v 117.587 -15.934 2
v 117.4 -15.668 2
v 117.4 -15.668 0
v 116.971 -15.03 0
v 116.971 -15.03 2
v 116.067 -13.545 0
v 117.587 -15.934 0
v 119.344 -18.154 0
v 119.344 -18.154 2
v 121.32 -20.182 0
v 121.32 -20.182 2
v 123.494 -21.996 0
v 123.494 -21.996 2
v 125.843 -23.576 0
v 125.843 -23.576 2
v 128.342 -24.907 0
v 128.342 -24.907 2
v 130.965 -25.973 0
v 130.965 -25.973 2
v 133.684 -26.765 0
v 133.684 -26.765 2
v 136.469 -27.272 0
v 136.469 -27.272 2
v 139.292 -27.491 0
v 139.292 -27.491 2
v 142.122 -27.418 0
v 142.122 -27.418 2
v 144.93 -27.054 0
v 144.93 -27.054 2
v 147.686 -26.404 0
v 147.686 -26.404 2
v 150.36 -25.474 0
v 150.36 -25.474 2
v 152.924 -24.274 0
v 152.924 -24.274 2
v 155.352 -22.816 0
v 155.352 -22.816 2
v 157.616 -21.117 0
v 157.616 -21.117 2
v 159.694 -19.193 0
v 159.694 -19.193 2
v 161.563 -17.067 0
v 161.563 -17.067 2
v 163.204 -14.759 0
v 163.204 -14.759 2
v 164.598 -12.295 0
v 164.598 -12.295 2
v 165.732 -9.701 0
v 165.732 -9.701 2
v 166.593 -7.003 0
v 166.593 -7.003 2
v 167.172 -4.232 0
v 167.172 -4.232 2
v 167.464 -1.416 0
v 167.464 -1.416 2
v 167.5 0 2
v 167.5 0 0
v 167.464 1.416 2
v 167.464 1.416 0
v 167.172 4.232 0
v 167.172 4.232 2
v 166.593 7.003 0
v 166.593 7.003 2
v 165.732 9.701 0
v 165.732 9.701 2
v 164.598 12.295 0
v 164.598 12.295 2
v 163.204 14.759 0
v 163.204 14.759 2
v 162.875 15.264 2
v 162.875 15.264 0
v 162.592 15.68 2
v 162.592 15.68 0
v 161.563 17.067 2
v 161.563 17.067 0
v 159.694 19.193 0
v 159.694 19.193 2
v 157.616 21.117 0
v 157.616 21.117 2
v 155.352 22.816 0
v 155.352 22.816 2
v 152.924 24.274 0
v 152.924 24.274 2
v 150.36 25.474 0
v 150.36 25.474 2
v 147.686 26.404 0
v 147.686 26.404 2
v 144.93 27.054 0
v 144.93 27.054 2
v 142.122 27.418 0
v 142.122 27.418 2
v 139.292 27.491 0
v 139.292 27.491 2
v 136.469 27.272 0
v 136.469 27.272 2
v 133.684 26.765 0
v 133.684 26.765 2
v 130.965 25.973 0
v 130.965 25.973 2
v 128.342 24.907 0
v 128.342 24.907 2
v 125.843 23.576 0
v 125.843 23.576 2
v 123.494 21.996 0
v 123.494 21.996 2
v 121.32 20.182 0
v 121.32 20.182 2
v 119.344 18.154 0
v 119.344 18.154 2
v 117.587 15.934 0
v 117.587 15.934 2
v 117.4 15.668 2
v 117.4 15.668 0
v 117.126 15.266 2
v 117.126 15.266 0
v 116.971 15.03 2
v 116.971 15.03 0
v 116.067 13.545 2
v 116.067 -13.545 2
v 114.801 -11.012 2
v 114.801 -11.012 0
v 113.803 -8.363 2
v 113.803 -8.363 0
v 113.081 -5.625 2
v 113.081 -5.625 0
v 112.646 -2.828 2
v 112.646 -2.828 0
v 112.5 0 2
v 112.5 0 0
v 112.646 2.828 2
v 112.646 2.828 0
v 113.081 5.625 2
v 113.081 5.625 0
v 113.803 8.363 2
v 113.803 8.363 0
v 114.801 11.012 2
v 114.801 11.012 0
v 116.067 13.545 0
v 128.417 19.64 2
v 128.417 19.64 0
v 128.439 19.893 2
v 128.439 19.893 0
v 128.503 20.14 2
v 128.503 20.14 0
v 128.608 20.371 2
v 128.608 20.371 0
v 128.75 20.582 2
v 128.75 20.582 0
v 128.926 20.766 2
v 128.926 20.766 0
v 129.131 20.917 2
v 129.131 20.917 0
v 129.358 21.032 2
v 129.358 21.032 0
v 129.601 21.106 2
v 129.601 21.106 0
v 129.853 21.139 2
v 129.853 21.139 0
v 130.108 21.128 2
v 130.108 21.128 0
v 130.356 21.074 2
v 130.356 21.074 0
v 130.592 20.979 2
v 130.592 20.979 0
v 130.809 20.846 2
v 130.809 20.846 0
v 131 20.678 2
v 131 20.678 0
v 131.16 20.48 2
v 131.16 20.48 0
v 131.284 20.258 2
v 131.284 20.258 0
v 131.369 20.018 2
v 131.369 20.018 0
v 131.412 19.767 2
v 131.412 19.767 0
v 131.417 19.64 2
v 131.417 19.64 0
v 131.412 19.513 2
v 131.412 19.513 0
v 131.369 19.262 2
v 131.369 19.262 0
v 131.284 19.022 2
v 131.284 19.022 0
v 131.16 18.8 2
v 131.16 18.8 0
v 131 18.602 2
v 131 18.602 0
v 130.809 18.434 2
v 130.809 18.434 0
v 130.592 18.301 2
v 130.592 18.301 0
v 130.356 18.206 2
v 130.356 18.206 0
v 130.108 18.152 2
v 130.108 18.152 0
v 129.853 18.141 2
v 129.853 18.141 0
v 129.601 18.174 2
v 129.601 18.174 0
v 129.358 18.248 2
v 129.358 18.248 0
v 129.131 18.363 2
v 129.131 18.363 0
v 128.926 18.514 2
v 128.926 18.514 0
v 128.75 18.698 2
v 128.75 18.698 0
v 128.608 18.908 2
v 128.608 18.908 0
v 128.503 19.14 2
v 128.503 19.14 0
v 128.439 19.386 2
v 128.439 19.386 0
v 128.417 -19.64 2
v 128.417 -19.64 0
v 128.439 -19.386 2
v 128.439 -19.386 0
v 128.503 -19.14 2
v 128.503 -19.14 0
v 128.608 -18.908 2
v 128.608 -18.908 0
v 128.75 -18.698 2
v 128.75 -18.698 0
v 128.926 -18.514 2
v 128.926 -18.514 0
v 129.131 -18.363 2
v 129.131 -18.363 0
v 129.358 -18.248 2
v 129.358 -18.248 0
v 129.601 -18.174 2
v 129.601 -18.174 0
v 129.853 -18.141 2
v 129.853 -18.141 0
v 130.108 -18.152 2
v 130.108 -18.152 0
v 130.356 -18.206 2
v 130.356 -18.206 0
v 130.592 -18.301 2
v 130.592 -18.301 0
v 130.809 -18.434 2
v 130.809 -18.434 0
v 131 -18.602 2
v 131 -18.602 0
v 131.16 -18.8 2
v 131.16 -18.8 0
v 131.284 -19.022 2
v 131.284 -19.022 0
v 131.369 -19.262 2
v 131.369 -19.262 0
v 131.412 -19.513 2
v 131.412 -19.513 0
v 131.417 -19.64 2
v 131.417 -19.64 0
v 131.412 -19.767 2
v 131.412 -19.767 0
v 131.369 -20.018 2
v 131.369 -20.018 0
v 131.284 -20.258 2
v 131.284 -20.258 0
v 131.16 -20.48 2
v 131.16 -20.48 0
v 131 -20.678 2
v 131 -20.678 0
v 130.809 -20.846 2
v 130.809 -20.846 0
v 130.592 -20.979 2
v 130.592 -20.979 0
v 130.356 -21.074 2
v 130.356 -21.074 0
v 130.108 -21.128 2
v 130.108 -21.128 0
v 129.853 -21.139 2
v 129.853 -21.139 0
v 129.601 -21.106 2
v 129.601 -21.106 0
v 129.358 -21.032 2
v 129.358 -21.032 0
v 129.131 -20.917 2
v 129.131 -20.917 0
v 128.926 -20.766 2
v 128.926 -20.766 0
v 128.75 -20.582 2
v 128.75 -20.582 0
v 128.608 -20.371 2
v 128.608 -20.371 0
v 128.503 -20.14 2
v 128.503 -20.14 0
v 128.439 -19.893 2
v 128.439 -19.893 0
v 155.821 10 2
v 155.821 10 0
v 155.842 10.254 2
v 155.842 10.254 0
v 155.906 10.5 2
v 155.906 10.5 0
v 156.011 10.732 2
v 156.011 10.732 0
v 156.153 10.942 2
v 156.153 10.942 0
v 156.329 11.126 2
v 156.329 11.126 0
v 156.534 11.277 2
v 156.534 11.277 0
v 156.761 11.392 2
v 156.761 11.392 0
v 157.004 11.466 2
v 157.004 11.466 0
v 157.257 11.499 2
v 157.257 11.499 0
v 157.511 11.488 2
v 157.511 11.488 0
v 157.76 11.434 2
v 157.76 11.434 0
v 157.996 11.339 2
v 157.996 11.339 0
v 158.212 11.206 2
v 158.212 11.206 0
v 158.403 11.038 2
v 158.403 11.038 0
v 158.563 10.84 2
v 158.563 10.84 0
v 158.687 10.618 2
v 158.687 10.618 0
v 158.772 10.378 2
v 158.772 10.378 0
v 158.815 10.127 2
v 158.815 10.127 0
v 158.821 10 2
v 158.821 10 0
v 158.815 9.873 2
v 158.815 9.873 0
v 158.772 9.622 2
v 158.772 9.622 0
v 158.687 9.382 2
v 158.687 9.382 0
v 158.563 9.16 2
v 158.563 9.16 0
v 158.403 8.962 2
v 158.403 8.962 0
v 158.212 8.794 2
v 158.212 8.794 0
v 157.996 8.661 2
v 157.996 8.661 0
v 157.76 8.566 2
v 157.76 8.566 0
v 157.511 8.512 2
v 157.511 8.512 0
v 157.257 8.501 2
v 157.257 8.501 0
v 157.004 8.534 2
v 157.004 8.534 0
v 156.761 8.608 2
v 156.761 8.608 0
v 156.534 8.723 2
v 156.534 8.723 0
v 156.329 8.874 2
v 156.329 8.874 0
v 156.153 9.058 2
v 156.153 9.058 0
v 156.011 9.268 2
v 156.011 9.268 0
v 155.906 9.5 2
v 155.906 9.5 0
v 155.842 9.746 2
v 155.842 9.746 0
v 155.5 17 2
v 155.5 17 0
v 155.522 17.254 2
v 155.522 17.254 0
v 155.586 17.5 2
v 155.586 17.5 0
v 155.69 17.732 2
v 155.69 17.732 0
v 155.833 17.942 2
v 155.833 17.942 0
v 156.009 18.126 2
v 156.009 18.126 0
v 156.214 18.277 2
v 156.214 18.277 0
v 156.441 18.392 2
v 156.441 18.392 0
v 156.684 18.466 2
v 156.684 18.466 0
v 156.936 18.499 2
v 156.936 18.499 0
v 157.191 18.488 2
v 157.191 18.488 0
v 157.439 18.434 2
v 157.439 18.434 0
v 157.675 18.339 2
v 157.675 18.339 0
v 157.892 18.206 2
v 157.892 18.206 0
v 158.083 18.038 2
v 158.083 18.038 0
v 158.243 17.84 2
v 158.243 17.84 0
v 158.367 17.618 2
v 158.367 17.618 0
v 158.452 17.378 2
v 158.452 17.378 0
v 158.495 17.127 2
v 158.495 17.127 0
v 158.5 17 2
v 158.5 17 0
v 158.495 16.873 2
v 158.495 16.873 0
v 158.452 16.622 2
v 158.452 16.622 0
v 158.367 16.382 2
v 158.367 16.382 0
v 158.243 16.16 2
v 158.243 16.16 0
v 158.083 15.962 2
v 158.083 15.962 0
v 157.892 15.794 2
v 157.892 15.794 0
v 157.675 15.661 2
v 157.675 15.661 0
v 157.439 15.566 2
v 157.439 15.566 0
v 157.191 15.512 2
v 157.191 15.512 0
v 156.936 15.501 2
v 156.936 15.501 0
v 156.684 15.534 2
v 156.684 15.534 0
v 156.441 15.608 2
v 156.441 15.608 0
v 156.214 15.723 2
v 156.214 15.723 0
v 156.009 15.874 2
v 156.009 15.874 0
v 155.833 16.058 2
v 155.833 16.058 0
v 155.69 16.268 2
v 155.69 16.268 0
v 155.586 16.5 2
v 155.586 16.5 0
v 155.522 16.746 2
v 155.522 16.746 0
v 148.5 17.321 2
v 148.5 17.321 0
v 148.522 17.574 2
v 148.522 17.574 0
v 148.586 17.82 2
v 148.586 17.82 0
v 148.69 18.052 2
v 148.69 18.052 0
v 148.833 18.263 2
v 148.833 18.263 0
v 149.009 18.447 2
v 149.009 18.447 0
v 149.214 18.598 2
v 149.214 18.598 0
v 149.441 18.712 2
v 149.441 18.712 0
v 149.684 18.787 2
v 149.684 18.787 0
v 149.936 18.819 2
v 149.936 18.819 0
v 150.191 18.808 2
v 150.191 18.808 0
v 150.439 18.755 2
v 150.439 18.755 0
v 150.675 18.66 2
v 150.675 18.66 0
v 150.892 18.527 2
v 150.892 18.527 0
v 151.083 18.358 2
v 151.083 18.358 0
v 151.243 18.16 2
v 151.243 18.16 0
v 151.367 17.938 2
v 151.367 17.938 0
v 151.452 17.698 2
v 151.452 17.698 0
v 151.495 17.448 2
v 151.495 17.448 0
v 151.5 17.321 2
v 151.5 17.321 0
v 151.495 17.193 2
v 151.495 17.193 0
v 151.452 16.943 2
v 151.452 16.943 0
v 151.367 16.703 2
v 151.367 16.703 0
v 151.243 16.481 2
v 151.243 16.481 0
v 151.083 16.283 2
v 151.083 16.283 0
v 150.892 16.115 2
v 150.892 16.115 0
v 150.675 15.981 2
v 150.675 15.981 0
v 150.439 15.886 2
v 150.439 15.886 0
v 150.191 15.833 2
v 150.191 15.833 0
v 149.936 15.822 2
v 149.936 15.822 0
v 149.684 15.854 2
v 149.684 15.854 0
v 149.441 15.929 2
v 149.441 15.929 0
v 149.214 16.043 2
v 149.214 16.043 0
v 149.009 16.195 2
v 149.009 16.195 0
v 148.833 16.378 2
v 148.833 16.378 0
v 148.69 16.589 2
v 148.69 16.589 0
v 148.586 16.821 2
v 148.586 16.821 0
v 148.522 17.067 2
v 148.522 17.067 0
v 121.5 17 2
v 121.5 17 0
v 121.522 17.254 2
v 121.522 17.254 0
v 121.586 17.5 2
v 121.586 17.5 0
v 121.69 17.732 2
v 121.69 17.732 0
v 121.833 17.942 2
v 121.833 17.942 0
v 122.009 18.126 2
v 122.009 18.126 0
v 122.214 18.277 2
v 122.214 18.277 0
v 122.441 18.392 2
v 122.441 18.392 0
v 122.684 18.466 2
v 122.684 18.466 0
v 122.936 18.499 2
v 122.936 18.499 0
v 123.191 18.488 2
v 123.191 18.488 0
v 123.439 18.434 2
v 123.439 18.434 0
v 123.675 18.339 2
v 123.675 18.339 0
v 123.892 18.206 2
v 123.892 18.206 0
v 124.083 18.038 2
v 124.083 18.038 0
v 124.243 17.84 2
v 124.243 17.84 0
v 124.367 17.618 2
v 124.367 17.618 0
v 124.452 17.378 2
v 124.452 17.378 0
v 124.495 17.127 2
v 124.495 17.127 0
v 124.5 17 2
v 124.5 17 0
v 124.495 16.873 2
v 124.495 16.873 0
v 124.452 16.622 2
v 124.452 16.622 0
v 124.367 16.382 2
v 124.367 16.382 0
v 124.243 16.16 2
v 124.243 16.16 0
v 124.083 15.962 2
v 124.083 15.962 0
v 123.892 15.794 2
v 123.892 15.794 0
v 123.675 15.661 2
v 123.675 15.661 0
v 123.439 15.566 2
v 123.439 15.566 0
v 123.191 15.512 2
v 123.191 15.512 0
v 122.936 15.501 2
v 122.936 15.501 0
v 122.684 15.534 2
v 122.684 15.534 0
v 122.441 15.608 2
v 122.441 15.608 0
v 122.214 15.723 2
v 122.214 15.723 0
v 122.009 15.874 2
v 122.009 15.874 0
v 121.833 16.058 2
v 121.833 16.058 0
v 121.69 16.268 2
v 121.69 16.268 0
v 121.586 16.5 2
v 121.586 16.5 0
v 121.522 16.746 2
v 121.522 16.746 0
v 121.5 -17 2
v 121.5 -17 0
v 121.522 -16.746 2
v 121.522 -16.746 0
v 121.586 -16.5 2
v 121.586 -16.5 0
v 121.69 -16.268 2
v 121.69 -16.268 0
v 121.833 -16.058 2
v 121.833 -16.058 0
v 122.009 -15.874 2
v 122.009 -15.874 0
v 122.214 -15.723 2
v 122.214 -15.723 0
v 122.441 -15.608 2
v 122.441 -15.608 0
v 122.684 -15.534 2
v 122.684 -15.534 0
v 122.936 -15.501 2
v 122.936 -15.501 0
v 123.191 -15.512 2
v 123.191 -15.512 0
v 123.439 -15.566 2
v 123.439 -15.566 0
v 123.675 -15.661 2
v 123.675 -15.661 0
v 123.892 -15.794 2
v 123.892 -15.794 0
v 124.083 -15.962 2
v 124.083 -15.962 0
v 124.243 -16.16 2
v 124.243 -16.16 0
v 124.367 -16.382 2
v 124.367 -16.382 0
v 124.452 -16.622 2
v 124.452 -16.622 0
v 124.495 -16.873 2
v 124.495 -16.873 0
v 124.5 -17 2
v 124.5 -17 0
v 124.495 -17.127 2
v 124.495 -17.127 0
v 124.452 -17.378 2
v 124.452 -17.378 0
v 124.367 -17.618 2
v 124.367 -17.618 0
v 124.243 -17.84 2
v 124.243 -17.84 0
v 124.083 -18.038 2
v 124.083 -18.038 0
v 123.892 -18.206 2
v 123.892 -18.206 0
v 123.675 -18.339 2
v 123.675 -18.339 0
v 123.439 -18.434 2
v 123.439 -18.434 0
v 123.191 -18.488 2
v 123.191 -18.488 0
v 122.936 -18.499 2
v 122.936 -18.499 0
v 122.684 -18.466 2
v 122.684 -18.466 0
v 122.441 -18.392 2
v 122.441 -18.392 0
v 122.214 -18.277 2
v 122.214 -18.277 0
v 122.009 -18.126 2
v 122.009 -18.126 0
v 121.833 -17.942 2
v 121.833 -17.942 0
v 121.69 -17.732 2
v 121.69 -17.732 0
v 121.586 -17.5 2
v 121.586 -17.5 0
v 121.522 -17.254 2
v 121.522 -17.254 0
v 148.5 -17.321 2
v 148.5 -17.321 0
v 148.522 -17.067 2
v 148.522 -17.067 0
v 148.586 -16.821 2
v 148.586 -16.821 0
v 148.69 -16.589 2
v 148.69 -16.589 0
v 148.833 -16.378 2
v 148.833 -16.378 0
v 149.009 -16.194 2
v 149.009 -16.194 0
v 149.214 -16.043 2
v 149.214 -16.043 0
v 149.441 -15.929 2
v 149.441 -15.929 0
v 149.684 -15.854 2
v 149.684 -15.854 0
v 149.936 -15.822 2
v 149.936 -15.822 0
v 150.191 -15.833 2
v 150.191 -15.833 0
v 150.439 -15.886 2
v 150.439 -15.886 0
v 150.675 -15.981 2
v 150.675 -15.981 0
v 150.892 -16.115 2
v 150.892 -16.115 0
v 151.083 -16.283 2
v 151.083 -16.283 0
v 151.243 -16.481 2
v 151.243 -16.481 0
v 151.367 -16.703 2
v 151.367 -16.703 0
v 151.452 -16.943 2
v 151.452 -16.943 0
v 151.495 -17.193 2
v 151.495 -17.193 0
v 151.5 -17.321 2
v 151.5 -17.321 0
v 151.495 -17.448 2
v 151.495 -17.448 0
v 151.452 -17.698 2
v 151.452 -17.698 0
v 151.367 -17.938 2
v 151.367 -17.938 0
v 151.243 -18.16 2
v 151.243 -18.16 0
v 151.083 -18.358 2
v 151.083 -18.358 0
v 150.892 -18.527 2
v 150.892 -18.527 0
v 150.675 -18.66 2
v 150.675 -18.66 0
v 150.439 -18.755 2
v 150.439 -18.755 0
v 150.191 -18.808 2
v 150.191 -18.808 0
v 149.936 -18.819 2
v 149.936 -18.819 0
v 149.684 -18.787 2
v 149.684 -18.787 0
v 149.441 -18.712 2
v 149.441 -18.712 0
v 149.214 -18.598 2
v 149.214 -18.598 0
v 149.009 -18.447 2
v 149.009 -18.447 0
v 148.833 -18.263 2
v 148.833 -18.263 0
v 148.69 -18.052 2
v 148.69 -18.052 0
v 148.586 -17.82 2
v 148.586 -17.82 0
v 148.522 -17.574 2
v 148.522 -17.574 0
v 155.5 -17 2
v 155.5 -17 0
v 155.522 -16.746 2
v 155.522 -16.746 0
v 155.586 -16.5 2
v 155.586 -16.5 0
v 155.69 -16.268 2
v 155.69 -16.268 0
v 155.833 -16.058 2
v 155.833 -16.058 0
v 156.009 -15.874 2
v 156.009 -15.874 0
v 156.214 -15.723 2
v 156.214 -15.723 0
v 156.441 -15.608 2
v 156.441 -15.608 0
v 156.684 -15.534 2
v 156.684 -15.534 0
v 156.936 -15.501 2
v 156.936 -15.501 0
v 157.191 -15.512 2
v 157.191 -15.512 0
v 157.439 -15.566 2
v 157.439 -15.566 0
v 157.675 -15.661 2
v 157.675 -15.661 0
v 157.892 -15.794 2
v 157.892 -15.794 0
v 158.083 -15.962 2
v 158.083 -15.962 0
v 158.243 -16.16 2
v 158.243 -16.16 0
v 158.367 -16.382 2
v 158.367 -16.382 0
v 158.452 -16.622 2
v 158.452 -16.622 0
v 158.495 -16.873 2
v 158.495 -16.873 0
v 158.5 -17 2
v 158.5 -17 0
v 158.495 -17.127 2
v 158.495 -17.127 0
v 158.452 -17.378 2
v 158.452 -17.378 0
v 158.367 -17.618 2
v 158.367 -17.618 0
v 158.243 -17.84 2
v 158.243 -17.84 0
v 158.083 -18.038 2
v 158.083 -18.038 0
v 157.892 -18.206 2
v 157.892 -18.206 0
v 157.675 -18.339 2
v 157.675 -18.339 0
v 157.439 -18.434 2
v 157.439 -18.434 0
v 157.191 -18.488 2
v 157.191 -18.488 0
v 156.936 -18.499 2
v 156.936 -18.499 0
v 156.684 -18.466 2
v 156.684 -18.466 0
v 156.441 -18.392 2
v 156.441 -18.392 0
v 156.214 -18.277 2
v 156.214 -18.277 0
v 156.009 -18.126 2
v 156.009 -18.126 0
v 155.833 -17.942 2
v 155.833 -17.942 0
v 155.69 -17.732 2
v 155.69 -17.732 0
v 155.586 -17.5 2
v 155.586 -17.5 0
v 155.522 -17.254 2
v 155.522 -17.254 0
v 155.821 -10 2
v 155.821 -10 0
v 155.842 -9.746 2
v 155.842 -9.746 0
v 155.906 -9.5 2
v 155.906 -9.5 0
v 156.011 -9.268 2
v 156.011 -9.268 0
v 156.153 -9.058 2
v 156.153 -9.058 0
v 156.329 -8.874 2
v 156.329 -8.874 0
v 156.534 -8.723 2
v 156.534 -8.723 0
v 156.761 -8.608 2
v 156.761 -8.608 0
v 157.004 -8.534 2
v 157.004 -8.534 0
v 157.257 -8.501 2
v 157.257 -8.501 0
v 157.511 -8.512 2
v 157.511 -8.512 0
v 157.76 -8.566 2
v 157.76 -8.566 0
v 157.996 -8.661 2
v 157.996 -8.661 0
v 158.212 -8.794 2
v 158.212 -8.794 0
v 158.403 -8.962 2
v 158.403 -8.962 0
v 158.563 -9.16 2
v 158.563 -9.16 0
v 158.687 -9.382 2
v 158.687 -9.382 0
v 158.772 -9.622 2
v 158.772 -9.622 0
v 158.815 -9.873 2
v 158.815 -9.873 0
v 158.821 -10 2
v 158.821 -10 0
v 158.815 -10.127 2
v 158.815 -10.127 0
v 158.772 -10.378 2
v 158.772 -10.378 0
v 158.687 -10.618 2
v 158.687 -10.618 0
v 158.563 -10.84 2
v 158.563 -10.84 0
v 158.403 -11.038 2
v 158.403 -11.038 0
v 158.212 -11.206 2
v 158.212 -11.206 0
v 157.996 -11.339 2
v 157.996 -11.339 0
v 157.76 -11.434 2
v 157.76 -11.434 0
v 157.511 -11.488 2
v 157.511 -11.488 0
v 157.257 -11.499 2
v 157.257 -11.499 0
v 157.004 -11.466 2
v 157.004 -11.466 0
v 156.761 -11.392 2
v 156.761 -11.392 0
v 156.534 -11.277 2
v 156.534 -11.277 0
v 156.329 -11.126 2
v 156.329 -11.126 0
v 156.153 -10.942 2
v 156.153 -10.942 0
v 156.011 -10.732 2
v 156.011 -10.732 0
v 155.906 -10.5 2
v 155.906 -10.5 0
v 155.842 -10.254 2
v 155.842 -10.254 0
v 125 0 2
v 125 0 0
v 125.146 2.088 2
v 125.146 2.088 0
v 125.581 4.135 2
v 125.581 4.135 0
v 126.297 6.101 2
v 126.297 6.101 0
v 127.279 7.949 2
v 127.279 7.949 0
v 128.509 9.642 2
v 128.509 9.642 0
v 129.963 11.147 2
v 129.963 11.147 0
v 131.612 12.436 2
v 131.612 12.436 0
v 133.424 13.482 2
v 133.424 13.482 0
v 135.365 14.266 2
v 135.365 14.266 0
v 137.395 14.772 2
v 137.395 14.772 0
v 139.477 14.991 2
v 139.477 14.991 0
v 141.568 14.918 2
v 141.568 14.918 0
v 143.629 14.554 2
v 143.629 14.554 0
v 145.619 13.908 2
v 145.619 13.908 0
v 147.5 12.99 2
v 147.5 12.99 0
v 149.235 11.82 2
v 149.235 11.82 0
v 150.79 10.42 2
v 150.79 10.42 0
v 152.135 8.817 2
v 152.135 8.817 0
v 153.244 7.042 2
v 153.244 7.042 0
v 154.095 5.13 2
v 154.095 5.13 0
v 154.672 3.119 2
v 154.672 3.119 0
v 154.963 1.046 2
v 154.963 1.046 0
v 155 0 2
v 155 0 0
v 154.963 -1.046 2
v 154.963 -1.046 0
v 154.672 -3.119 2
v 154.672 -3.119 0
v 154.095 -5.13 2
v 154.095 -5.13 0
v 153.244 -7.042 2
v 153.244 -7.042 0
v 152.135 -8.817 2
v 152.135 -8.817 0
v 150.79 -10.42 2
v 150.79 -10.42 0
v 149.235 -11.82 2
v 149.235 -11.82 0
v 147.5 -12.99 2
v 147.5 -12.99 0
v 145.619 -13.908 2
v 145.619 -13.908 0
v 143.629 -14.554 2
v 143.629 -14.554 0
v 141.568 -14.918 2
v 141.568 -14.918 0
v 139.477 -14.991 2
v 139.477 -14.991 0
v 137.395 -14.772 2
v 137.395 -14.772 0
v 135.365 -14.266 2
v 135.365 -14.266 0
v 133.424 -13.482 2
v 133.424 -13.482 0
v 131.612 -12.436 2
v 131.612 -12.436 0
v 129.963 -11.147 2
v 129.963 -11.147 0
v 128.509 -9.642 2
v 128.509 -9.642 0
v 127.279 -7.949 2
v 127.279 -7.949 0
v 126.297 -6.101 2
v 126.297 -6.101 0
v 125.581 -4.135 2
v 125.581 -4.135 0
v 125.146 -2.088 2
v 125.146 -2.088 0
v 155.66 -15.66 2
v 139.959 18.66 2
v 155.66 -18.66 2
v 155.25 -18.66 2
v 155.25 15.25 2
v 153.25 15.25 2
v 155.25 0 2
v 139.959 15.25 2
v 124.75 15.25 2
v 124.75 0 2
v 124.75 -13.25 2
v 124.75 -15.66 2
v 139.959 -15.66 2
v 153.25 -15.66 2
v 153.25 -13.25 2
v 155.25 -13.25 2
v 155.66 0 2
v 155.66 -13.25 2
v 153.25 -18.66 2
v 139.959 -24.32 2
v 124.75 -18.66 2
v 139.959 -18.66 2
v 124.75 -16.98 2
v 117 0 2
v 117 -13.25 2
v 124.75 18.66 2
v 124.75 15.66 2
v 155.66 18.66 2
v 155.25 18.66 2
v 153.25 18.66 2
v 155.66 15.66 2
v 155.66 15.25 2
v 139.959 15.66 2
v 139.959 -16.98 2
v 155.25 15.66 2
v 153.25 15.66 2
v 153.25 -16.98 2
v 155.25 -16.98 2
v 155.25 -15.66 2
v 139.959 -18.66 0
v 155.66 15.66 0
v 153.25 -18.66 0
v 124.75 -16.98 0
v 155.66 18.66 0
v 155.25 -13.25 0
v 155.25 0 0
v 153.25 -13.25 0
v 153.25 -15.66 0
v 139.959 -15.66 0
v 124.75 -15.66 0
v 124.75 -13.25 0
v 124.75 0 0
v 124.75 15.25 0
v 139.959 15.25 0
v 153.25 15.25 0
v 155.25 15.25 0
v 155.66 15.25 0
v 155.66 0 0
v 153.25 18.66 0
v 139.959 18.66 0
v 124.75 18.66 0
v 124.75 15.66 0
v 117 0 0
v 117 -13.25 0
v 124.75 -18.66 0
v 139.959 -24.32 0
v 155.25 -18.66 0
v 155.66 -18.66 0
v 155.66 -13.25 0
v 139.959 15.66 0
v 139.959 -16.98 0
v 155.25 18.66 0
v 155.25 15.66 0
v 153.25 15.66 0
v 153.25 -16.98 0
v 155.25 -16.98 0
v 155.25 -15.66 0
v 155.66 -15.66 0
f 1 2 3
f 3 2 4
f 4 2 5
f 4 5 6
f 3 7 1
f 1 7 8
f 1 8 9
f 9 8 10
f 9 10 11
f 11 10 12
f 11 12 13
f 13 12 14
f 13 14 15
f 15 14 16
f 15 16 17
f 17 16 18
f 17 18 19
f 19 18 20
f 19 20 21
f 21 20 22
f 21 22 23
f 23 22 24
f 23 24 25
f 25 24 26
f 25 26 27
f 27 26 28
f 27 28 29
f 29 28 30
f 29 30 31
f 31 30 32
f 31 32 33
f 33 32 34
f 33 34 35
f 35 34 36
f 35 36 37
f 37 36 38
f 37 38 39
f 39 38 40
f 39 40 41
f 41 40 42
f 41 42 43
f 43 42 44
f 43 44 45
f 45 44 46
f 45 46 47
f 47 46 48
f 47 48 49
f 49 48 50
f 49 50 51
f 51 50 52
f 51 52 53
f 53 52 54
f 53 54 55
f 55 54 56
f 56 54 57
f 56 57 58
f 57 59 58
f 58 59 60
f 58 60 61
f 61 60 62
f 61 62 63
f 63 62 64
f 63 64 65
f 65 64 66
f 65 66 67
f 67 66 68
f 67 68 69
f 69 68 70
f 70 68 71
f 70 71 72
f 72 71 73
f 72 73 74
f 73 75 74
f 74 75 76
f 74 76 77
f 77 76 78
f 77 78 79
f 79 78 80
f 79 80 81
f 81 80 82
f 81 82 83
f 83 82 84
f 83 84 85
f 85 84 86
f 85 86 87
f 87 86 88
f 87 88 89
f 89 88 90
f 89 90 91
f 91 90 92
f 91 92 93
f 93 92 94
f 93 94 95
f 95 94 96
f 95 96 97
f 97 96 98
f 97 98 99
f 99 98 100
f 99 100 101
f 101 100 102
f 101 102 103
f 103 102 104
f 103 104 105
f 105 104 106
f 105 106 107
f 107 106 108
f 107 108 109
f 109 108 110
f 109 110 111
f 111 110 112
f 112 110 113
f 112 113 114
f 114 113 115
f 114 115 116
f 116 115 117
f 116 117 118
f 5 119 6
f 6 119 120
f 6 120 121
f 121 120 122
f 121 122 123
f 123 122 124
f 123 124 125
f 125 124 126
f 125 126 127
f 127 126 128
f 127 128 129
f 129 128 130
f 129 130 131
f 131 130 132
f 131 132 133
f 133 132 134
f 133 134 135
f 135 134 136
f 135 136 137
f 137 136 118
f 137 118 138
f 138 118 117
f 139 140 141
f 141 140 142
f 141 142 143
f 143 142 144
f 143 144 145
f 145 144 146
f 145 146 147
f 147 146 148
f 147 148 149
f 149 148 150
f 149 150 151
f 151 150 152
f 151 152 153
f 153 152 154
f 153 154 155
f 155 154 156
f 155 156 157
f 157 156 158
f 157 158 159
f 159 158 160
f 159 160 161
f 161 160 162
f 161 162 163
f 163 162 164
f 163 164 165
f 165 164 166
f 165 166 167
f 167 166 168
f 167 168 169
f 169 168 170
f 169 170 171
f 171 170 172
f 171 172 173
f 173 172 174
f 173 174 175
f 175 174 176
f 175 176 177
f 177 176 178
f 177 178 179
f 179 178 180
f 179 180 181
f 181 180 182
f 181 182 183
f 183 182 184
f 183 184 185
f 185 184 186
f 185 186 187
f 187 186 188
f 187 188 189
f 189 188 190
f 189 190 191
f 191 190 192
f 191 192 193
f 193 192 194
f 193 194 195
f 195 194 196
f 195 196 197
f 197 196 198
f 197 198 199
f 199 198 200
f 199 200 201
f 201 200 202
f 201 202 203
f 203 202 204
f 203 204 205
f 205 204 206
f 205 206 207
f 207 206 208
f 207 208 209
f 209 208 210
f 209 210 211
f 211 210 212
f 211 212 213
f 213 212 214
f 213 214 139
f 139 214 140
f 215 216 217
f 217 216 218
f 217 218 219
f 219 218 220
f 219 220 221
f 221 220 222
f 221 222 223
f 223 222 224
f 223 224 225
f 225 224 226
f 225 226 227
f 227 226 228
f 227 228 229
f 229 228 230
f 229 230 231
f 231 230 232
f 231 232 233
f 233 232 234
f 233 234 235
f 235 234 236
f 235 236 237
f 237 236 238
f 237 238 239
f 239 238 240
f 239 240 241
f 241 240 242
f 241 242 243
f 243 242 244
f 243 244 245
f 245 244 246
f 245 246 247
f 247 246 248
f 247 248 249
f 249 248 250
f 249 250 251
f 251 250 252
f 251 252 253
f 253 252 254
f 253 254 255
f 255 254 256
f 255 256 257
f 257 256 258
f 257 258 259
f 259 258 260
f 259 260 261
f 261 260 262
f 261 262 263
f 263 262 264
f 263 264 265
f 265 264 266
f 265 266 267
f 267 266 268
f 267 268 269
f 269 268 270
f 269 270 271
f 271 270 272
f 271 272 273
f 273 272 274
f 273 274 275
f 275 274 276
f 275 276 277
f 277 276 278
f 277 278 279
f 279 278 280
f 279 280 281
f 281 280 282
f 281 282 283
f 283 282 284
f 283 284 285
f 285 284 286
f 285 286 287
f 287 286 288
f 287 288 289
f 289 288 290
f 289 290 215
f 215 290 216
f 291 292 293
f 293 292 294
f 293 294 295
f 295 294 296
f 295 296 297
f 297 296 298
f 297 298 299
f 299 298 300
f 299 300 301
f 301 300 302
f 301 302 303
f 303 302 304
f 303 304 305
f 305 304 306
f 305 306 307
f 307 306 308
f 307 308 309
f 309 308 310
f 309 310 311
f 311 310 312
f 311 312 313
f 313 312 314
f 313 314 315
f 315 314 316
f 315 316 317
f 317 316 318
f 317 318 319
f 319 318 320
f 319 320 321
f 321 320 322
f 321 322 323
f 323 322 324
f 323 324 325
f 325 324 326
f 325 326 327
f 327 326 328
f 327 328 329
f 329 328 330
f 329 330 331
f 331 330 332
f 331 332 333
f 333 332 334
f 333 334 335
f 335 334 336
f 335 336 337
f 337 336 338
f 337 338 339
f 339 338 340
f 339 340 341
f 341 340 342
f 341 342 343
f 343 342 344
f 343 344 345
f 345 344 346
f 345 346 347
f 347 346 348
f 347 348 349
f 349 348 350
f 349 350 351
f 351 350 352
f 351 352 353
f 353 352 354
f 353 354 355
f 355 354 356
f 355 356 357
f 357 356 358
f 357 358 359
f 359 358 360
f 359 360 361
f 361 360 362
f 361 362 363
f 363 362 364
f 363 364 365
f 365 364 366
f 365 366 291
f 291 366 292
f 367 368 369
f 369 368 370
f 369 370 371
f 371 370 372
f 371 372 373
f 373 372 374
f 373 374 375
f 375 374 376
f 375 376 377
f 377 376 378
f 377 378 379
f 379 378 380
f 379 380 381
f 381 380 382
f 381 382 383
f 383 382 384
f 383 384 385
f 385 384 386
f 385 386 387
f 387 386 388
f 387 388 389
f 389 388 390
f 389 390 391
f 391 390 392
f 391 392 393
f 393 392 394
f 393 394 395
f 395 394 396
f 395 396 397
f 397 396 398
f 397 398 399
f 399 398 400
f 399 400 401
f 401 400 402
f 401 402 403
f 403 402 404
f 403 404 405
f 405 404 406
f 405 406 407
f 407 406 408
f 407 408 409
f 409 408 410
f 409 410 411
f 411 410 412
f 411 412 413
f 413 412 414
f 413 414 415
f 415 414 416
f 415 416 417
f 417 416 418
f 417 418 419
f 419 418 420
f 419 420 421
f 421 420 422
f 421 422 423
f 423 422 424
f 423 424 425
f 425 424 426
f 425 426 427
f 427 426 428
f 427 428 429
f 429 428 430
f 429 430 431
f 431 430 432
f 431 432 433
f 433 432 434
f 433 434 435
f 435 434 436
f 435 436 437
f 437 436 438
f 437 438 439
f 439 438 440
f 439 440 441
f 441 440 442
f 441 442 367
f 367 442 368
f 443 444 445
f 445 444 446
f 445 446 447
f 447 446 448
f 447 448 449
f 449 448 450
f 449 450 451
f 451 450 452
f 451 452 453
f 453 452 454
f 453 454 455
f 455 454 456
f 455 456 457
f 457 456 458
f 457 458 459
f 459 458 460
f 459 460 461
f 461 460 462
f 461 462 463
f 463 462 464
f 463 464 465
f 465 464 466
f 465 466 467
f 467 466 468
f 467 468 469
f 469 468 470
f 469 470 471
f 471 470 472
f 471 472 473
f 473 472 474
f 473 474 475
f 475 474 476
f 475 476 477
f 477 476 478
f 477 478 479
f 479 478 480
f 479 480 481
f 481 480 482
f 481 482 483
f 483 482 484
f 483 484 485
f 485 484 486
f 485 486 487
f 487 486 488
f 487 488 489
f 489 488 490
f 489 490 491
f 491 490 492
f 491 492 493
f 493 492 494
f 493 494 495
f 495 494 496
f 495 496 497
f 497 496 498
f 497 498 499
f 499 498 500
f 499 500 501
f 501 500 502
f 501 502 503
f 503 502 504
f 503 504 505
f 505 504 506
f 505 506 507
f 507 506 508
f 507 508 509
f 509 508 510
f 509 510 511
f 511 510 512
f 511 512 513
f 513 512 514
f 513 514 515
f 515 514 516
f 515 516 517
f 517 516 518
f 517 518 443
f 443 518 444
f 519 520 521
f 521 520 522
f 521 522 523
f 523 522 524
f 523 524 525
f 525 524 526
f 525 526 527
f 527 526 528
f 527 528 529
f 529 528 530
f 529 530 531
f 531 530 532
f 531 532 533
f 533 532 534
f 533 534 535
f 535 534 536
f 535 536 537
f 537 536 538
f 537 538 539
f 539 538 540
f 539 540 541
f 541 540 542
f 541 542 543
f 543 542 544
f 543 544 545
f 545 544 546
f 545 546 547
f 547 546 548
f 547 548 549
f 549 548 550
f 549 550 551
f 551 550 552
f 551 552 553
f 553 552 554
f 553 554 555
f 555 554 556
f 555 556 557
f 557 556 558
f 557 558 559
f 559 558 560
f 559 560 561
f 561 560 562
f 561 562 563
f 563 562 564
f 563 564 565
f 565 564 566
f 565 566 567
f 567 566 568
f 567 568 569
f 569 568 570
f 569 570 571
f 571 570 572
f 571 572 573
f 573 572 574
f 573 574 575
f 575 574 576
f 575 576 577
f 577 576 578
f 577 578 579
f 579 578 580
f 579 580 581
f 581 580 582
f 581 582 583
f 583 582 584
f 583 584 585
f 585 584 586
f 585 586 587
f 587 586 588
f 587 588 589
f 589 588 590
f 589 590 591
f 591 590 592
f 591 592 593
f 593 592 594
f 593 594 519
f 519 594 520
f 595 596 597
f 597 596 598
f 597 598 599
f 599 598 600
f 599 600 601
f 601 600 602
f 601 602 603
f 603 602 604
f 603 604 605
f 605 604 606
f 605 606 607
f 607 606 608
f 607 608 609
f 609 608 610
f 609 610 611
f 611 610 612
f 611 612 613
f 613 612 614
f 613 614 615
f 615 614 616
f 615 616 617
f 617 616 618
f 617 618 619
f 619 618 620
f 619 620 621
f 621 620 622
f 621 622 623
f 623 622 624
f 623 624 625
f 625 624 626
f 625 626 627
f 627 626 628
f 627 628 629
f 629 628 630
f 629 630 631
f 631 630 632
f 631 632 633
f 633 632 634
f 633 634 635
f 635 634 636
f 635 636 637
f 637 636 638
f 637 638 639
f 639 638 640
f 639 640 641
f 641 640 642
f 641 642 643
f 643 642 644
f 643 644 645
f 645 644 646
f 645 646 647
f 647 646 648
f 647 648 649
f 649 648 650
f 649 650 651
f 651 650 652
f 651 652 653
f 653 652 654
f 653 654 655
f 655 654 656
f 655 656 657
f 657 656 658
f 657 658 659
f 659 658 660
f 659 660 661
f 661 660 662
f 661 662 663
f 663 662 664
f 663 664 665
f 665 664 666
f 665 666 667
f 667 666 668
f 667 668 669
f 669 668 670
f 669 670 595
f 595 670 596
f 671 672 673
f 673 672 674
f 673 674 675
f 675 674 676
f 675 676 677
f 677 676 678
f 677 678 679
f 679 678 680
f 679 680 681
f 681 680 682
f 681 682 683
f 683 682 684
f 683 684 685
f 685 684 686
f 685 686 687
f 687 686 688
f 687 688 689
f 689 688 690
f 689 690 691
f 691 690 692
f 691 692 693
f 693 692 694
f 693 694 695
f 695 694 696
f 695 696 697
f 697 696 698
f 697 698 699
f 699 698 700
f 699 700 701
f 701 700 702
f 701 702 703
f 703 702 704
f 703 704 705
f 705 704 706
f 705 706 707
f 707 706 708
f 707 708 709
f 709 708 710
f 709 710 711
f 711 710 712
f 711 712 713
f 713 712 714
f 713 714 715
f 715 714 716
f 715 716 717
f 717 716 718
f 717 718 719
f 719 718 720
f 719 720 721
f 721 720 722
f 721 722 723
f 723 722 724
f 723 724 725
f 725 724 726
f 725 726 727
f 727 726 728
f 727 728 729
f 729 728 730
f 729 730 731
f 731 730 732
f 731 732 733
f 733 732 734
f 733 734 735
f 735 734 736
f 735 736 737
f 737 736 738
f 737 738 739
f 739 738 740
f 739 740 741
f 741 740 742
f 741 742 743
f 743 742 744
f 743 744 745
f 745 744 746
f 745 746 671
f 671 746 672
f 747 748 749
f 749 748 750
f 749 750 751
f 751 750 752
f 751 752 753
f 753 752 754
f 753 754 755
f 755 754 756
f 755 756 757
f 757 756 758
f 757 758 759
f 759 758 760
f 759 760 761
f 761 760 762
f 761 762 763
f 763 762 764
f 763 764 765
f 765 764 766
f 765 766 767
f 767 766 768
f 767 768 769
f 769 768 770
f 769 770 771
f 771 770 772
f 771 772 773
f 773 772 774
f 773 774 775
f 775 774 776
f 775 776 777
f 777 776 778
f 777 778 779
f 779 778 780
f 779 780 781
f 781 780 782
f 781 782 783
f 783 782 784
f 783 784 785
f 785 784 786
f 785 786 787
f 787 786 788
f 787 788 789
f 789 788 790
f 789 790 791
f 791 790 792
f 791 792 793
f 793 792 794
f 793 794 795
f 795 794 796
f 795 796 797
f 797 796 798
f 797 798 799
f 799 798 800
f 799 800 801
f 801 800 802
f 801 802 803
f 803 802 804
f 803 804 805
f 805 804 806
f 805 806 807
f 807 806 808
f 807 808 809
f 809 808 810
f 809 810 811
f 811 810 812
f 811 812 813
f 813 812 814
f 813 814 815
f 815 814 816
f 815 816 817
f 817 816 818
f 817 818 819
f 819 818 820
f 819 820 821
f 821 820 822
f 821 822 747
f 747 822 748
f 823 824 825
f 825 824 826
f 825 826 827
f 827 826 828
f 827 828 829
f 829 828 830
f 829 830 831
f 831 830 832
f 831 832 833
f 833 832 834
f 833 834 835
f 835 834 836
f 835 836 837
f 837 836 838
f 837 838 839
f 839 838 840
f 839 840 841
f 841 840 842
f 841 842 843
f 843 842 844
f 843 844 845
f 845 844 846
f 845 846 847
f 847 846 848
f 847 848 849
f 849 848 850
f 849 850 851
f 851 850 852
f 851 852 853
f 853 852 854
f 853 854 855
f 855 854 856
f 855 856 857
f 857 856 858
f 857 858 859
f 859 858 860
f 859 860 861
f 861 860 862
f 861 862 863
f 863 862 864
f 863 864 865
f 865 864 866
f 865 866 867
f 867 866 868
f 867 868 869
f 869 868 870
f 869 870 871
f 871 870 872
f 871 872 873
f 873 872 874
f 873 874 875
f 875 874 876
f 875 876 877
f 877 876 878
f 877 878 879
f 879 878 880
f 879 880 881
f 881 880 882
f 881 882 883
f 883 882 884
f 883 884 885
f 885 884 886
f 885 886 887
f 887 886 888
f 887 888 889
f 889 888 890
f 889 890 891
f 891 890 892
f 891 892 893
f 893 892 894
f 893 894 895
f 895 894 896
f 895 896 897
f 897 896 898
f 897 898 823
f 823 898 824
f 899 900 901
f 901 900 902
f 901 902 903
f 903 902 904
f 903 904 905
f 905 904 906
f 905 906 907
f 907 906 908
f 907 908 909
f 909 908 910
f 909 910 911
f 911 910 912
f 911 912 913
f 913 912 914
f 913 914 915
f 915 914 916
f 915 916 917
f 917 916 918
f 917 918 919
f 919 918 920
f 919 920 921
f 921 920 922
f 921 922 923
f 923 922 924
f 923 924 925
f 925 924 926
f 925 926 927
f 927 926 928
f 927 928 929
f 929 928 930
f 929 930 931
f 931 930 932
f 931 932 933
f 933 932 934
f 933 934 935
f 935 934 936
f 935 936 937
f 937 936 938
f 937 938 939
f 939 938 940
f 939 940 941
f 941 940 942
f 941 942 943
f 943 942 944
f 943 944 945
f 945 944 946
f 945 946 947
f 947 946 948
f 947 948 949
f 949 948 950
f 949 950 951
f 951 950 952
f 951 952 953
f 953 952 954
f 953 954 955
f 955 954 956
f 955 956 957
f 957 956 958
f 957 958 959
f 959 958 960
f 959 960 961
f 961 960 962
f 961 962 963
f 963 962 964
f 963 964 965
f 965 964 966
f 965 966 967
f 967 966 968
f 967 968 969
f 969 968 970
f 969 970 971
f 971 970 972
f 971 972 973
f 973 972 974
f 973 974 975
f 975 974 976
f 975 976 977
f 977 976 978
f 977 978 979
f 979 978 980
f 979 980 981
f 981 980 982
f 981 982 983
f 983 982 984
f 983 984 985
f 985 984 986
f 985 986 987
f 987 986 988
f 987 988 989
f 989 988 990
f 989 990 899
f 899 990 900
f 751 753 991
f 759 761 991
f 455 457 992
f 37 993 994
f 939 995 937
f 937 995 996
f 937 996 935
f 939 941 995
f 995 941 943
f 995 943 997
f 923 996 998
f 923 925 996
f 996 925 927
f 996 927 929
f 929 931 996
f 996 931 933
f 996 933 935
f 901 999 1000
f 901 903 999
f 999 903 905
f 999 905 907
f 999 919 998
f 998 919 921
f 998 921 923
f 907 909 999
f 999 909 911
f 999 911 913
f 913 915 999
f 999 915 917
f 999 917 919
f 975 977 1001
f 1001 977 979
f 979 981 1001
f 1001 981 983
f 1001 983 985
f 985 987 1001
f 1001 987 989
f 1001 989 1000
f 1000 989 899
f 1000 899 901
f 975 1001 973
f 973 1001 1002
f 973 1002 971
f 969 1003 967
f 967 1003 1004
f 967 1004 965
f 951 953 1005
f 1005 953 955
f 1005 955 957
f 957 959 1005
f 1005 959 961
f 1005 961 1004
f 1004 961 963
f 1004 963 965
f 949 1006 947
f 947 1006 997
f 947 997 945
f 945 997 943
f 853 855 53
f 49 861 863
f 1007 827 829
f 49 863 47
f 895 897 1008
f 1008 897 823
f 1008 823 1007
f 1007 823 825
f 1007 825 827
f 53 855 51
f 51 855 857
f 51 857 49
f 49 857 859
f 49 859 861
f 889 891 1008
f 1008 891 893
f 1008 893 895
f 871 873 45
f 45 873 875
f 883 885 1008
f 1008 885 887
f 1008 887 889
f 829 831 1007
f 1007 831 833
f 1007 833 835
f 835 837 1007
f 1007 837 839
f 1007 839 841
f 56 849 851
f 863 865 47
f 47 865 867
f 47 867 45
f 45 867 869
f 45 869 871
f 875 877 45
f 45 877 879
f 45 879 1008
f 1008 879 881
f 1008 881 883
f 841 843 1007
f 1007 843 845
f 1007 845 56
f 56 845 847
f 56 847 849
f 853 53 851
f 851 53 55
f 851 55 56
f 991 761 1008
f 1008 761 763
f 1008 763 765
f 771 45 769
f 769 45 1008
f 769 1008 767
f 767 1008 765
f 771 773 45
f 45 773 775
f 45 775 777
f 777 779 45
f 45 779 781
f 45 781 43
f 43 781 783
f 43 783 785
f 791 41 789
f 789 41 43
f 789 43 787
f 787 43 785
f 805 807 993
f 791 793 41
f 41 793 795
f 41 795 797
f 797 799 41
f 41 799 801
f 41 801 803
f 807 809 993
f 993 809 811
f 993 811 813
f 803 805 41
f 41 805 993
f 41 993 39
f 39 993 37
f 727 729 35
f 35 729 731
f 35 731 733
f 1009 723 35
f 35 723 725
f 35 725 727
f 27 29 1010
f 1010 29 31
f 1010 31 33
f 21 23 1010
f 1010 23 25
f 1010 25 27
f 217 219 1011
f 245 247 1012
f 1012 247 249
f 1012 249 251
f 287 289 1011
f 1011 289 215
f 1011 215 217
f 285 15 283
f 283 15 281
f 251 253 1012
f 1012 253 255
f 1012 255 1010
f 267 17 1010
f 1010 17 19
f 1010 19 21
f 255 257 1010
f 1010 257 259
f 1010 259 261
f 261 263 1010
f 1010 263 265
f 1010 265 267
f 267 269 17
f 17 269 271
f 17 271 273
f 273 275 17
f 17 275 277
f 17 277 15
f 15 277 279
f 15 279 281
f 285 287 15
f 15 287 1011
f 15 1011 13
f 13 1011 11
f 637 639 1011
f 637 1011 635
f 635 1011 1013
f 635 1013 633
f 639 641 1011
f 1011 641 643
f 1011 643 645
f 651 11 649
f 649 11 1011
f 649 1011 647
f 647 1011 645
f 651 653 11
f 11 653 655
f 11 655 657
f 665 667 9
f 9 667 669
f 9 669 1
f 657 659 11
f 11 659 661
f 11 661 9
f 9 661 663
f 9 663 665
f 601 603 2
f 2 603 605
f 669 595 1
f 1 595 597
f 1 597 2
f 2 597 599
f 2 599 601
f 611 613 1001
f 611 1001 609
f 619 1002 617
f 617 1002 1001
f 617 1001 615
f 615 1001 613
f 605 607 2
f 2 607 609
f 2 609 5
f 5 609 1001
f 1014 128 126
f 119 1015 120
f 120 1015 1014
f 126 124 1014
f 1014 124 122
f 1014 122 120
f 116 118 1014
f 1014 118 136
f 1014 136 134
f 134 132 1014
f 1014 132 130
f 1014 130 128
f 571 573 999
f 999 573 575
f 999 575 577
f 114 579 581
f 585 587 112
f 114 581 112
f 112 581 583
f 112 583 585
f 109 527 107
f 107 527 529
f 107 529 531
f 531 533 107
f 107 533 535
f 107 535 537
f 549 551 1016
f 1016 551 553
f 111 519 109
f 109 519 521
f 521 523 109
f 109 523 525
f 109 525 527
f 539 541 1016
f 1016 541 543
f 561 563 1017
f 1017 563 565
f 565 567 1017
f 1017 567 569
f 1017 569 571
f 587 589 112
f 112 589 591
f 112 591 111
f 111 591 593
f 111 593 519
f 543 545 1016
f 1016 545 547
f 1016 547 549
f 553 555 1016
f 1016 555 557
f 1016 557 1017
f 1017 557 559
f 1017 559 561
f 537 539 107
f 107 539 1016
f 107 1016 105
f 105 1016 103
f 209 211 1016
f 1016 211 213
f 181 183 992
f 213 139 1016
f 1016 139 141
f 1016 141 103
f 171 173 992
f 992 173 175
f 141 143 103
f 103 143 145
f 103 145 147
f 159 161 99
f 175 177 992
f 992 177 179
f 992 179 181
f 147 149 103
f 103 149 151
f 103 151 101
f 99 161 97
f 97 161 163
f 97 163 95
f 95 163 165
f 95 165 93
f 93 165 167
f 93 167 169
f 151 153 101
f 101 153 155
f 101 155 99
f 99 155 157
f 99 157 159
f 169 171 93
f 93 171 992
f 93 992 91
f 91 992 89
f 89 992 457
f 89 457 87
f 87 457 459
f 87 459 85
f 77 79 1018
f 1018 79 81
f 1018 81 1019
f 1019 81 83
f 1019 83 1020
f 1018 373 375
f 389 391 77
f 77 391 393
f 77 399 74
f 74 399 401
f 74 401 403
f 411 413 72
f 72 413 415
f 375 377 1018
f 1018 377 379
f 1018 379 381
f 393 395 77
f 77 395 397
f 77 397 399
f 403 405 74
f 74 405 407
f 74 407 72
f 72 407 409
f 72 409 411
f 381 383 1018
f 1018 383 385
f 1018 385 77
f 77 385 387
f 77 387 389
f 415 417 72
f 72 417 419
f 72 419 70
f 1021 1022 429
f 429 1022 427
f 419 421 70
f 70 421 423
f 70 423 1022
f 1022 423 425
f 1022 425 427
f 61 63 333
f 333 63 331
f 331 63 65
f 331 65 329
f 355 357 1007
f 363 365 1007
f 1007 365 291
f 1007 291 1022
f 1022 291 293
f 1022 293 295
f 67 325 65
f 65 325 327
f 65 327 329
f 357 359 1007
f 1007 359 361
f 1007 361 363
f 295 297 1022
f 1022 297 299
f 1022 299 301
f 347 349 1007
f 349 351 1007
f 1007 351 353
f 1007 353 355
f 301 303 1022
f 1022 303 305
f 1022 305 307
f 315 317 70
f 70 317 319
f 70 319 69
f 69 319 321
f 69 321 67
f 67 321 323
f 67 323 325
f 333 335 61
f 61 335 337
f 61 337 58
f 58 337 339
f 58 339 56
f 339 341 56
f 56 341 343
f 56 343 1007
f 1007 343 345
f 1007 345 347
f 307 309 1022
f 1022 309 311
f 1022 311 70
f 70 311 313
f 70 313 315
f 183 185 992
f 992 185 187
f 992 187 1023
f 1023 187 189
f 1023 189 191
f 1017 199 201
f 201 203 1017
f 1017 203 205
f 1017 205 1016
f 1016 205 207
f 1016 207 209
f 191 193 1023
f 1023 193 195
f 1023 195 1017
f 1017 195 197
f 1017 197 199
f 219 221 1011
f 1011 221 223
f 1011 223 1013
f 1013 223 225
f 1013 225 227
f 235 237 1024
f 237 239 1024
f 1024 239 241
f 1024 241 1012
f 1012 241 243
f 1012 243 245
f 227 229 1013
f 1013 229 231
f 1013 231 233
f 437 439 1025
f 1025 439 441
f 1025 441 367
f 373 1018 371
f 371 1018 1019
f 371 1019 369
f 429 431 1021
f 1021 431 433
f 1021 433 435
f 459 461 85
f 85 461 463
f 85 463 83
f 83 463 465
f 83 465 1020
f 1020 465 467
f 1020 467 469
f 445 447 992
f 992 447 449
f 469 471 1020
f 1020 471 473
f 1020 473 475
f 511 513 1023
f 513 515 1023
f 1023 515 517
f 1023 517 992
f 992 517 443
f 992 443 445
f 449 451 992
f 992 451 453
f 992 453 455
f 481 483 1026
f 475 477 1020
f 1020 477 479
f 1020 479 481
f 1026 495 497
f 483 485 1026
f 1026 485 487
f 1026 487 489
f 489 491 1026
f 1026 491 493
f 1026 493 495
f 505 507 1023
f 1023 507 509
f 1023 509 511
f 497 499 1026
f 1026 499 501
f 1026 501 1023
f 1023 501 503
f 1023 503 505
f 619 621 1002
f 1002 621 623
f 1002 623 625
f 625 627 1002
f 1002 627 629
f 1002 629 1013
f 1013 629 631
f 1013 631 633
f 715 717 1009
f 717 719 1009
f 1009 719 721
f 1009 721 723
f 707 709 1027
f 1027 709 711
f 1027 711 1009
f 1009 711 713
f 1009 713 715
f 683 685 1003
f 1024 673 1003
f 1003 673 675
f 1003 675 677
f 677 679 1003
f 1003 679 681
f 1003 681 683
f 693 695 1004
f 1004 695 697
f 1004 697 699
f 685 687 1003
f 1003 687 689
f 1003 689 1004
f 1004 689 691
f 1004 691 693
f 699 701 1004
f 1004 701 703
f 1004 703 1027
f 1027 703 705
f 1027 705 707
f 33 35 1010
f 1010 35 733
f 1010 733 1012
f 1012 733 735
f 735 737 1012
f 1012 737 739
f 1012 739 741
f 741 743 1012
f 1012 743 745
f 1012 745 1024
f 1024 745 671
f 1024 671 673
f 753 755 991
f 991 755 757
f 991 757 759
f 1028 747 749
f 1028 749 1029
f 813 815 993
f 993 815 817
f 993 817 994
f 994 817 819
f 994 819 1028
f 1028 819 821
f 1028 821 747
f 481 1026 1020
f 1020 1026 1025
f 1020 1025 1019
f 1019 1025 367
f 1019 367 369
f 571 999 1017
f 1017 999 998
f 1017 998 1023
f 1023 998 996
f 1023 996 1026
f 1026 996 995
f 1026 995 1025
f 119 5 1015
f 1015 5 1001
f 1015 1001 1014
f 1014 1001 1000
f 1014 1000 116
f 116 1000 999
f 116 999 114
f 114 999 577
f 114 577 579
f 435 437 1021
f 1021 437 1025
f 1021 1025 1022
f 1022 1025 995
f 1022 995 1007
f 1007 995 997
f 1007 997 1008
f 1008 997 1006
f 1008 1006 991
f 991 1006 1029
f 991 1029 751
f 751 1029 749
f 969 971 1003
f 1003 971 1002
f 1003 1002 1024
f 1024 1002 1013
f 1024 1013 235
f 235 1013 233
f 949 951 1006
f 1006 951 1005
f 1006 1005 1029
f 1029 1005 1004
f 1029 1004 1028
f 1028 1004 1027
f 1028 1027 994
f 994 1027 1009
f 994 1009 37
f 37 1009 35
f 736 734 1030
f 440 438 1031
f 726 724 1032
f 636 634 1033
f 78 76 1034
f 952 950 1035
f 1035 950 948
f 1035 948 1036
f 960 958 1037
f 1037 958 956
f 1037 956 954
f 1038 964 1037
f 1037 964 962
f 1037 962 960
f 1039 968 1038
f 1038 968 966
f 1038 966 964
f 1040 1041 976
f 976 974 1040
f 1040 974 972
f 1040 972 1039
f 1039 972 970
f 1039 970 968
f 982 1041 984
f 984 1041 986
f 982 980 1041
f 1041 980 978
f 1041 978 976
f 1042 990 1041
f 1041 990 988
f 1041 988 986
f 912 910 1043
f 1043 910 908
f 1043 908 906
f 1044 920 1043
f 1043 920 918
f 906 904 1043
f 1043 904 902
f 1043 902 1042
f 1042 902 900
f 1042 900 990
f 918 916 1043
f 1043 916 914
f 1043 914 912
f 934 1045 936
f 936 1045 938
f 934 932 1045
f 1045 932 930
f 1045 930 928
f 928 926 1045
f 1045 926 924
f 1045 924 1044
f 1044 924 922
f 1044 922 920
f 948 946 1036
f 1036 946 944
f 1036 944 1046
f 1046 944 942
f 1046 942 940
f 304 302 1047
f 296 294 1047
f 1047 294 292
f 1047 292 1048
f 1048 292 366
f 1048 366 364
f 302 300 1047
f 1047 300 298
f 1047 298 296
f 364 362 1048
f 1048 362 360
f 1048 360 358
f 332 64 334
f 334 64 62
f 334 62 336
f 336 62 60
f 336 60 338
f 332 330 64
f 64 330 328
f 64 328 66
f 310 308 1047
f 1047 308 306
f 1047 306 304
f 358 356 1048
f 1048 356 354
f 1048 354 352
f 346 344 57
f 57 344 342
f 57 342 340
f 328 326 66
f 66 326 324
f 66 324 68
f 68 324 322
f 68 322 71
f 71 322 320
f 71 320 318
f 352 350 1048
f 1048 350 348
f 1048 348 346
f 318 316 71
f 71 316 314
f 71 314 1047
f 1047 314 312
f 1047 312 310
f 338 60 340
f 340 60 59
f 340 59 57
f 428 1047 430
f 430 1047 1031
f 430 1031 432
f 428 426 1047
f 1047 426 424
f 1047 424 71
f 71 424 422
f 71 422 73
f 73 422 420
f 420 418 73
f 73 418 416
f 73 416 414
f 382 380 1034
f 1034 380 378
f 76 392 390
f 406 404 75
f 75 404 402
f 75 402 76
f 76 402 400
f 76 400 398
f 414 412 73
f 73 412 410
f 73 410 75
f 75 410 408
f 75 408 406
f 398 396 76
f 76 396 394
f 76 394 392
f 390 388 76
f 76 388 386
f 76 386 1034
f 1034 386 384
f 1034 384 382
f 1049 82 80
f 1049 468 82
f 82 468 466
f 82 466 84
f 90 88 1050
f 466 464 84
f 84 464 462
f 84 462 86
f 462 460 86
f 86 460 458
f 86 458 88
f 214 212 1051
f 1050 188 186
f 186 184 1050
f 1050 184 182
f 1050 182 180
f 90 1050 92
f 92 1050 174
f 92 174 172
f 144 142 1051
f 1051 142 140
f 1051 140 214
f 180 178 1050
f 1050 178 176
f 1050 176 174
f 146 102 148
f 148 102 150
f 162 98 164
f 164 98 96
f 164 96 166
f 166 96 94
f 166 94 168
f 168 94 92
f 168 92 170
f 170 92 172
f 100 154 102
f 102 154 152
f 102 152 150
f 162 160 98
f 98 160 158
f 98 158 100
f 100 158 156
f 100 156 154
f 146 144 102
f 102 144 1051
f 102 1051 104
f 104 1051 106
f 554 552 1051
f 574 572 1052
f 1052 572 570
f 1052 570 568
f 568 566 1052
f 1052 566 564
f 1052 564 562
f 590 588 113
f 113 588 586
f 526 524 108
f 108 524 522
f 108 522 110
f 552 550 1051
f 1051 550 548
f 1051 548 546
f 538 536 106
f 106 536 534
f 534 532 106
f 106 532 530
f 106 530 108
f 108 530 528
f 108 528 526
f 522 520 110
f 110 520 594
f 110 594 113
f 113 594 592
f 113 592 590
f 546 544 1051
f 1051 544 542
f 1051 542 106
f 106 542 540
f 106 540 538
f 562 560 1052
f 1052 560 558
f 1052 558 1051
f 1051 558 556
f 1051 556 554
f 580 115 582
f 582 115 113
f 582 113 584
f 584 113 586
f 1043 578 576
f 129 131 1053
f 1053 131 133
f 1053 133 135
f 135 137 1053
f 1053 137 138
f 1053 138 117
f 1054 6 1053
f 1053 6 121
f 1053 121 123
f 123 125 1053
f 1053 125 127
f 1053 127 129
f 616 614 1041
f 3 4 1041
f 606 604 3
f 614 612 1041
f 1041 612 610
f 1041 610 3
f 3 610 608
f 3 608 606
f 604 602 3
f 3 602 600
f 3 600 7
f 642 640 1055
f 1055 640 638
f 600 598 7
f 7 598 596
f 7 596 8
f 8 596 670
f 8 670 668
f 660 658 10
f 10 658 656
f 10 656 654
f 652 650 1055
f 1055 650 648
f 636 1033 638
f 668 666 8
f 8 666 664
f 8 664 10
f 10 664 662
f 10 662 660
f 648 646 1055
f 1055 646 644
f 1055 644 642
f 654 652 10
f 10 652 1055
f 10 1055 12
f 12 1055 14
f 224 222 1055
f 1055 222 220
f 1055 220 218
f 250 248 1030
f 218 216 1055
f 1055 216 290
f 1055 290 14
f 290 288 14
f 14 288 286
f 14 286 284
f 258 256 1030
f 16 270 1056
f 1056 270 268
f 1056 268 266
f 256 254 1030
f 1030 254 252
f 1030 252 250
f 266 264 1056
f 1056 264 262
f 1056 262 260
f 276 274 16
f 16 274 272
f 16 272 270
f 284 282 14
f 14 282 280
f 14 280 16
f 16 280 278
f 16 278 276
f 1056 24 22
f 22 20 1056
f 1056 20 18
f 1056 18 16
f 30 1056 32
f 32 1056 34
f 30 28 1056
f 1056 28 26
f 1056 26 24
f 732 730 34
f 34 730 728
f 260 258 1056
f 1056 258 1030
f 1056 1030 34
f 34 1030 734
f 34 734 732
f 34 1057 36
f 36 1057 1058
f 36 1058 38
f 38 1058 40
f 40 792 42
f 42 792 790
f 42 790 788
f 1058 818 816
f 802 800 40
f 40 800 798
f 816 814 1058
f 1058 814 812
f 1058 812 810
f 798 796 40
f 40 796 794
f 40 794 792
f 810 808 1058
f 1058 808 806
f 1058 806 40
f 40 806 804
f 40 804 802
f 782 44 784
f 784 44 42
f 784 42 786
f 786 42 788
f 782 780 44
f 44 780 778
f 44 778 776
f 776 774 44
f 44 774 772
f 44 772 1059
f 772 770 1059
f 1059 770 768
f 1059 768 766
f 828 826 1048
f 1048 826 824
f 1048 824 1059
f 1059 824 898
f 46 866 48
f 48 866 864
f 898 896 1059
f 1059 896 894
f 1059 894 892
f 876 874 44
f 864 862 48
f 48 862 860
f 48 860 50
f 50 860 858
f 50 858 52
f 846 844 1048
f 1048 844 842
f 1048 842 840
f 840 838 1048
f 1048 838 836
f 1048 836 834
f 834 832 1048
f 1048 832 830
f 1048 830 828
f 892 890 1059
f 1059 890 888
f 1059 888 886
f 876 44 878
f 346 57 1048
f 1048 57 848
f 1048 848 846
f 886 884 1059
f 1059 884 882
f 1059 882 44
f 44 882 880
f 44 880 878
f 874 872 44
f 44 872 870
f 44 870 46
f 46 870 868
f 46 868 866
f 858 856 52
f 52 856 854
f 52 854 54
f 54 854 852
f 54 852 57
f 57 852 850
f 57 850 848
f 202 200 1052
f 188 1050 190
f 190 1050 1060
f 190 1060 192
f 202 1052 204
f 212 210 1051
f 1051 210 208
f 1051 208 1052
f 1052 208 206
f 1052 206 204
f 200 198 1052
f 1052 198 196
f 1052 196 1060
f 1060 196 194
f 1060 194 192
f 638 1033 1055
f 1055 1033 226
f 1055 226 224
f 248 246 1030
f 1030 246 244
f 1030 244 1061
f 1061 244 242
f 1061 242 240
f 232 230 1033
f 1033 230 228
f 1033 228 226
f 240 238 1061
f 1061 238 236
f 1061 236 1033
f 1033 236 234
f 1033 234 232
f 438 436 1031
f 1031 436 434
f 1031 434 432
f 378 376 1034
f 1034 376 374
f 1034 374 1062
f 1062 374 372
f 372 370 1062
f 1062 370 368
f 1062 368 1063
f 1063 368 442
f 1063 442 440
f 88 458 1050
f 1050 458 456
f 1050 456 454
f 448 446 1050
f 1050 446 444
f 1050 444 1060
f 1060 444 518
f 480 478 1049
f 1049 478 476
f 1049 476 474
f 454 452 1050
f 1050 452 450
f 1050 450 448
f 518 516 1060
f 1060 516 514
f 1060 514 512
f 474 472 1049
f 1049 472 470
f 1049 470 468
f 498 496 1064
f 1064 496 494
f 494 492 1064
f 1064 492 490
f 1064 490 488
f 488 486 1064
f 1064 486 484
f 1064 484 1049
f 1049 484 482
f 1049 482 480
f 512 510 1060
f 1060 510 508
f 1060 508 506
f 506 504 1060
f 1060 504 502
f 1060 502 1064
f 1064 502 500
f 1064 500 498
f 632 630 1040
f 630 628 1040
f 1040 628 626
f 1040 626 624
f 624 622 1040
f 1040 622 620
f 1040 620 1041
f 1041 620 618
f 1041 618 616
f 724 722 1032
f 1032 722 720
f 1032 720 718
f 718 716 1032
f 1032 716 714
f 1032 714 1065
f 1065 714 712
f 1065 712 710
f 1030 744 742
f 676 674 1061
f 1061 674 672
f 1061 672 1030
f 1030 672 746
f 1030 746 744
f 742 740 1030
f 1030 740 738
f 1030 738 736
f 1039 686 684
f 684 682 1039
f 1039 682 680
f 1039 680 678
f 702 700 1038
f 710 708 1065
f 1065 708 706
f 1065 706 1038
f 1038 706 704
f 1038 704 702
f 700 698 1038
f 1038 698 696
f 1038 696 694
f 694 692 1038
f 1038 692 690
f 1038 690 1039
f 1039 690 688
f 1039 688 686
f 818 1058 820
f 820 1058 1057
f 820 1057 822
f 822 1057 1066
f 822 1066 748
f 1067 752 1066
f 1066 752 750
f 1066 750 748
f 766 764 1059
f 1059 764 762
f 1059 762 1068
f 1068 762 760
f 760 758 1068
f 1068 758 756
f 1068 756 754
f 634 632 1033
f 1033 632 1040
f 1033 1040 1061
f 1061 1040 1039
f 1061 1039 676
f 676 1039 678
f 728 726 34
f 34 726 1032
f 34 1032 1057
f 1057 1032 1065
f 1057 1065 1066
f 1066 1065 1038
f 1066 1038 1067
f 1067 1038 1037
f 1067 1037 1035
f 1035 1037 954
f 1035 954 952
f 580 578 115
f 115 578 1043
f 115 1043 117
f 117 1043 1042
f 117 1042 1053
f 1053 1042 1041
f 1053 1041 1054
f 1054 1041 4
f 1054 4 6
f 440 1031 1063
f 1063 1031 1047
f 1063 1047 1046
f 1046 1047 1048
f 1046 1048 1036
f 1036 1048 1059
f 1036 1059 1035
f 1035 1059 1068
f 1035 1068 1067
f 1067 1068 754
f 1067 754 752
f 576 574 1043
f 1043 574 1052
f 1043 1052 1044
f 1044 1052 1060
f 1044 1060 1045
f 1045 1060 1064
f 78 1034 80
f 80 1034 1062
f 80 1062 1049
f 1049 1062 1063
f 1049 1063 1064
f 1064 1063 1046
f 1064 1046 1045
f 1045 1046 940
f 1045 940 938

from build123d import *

# Parameters (mm, degrees)
SKETCH_2_R      = 27.5
SKETCH_2_R_2    = 15
SKETCH_2_R_3    = 1.5
EXTRUDE_4_DEPTH = 2


with BuildPart() as part:
    # 草图2 → 凸台-拉伸4 (new body)
    with BuildSketch(Plane.XY):
        with Locations((139.999999999, 2e-09)):
            Circle(SKETCH_2_R)
        with Locations((139.999999999, 2e-09)):
            Circle(SKETCH_2_R_2, mode=Mode.SUBTRACT)
        with Locations((156.999999999, -16.999999998)):
            Circle(SKETCH_2_R_3, mode=Mode.SUBTRACT)
        with Locations((122.999999999, -16.999999998)):
            Circle(SKETCH_2_R_3, mode=Mode.SUBTRACT)
        with Locations((122.999999999, 17.000000002)):
            Circle(SKETCH_2_R_3, mode=Mode.SUBTRACT)
        with Locations((156.999999999, 17.000000002)):
            Circle(SKETCH_2_R_3, mode=Mode.SUBTRACT)
        with Locations((149.999999999, 17.320508077)):
            Circle(SKETCH_2_R_3, mode=Mode.SUBTRACT)
        with Locations((129.917171064, 19.639898968)):
            Circle(SKETCH_2_R_3, mode=Mode.SUBTRACT)
        with Locations((129.917171064, -19.639898965)):
            Circle(SKETCH_2_R_3, mode=Mode.SUBTRACT)
        with Locations((149.999999999, -17.320508074)):
            Circle(SKETCH_2_R_3, mode=Mode.SUBTRACT)
        with Locations((157.320508075, -9.999999999)):
            Circle(SKETCH_2_R_3, mode=Mode.SUBTRACT)
        with Locations((157.320508075, 10.000000001)):
            Circle(SKETCH_2_R_3, mode=Mode.SUBTRACT)
    extrude(amount=EXTRUDE_4_DEPTH)


solid = part.part
